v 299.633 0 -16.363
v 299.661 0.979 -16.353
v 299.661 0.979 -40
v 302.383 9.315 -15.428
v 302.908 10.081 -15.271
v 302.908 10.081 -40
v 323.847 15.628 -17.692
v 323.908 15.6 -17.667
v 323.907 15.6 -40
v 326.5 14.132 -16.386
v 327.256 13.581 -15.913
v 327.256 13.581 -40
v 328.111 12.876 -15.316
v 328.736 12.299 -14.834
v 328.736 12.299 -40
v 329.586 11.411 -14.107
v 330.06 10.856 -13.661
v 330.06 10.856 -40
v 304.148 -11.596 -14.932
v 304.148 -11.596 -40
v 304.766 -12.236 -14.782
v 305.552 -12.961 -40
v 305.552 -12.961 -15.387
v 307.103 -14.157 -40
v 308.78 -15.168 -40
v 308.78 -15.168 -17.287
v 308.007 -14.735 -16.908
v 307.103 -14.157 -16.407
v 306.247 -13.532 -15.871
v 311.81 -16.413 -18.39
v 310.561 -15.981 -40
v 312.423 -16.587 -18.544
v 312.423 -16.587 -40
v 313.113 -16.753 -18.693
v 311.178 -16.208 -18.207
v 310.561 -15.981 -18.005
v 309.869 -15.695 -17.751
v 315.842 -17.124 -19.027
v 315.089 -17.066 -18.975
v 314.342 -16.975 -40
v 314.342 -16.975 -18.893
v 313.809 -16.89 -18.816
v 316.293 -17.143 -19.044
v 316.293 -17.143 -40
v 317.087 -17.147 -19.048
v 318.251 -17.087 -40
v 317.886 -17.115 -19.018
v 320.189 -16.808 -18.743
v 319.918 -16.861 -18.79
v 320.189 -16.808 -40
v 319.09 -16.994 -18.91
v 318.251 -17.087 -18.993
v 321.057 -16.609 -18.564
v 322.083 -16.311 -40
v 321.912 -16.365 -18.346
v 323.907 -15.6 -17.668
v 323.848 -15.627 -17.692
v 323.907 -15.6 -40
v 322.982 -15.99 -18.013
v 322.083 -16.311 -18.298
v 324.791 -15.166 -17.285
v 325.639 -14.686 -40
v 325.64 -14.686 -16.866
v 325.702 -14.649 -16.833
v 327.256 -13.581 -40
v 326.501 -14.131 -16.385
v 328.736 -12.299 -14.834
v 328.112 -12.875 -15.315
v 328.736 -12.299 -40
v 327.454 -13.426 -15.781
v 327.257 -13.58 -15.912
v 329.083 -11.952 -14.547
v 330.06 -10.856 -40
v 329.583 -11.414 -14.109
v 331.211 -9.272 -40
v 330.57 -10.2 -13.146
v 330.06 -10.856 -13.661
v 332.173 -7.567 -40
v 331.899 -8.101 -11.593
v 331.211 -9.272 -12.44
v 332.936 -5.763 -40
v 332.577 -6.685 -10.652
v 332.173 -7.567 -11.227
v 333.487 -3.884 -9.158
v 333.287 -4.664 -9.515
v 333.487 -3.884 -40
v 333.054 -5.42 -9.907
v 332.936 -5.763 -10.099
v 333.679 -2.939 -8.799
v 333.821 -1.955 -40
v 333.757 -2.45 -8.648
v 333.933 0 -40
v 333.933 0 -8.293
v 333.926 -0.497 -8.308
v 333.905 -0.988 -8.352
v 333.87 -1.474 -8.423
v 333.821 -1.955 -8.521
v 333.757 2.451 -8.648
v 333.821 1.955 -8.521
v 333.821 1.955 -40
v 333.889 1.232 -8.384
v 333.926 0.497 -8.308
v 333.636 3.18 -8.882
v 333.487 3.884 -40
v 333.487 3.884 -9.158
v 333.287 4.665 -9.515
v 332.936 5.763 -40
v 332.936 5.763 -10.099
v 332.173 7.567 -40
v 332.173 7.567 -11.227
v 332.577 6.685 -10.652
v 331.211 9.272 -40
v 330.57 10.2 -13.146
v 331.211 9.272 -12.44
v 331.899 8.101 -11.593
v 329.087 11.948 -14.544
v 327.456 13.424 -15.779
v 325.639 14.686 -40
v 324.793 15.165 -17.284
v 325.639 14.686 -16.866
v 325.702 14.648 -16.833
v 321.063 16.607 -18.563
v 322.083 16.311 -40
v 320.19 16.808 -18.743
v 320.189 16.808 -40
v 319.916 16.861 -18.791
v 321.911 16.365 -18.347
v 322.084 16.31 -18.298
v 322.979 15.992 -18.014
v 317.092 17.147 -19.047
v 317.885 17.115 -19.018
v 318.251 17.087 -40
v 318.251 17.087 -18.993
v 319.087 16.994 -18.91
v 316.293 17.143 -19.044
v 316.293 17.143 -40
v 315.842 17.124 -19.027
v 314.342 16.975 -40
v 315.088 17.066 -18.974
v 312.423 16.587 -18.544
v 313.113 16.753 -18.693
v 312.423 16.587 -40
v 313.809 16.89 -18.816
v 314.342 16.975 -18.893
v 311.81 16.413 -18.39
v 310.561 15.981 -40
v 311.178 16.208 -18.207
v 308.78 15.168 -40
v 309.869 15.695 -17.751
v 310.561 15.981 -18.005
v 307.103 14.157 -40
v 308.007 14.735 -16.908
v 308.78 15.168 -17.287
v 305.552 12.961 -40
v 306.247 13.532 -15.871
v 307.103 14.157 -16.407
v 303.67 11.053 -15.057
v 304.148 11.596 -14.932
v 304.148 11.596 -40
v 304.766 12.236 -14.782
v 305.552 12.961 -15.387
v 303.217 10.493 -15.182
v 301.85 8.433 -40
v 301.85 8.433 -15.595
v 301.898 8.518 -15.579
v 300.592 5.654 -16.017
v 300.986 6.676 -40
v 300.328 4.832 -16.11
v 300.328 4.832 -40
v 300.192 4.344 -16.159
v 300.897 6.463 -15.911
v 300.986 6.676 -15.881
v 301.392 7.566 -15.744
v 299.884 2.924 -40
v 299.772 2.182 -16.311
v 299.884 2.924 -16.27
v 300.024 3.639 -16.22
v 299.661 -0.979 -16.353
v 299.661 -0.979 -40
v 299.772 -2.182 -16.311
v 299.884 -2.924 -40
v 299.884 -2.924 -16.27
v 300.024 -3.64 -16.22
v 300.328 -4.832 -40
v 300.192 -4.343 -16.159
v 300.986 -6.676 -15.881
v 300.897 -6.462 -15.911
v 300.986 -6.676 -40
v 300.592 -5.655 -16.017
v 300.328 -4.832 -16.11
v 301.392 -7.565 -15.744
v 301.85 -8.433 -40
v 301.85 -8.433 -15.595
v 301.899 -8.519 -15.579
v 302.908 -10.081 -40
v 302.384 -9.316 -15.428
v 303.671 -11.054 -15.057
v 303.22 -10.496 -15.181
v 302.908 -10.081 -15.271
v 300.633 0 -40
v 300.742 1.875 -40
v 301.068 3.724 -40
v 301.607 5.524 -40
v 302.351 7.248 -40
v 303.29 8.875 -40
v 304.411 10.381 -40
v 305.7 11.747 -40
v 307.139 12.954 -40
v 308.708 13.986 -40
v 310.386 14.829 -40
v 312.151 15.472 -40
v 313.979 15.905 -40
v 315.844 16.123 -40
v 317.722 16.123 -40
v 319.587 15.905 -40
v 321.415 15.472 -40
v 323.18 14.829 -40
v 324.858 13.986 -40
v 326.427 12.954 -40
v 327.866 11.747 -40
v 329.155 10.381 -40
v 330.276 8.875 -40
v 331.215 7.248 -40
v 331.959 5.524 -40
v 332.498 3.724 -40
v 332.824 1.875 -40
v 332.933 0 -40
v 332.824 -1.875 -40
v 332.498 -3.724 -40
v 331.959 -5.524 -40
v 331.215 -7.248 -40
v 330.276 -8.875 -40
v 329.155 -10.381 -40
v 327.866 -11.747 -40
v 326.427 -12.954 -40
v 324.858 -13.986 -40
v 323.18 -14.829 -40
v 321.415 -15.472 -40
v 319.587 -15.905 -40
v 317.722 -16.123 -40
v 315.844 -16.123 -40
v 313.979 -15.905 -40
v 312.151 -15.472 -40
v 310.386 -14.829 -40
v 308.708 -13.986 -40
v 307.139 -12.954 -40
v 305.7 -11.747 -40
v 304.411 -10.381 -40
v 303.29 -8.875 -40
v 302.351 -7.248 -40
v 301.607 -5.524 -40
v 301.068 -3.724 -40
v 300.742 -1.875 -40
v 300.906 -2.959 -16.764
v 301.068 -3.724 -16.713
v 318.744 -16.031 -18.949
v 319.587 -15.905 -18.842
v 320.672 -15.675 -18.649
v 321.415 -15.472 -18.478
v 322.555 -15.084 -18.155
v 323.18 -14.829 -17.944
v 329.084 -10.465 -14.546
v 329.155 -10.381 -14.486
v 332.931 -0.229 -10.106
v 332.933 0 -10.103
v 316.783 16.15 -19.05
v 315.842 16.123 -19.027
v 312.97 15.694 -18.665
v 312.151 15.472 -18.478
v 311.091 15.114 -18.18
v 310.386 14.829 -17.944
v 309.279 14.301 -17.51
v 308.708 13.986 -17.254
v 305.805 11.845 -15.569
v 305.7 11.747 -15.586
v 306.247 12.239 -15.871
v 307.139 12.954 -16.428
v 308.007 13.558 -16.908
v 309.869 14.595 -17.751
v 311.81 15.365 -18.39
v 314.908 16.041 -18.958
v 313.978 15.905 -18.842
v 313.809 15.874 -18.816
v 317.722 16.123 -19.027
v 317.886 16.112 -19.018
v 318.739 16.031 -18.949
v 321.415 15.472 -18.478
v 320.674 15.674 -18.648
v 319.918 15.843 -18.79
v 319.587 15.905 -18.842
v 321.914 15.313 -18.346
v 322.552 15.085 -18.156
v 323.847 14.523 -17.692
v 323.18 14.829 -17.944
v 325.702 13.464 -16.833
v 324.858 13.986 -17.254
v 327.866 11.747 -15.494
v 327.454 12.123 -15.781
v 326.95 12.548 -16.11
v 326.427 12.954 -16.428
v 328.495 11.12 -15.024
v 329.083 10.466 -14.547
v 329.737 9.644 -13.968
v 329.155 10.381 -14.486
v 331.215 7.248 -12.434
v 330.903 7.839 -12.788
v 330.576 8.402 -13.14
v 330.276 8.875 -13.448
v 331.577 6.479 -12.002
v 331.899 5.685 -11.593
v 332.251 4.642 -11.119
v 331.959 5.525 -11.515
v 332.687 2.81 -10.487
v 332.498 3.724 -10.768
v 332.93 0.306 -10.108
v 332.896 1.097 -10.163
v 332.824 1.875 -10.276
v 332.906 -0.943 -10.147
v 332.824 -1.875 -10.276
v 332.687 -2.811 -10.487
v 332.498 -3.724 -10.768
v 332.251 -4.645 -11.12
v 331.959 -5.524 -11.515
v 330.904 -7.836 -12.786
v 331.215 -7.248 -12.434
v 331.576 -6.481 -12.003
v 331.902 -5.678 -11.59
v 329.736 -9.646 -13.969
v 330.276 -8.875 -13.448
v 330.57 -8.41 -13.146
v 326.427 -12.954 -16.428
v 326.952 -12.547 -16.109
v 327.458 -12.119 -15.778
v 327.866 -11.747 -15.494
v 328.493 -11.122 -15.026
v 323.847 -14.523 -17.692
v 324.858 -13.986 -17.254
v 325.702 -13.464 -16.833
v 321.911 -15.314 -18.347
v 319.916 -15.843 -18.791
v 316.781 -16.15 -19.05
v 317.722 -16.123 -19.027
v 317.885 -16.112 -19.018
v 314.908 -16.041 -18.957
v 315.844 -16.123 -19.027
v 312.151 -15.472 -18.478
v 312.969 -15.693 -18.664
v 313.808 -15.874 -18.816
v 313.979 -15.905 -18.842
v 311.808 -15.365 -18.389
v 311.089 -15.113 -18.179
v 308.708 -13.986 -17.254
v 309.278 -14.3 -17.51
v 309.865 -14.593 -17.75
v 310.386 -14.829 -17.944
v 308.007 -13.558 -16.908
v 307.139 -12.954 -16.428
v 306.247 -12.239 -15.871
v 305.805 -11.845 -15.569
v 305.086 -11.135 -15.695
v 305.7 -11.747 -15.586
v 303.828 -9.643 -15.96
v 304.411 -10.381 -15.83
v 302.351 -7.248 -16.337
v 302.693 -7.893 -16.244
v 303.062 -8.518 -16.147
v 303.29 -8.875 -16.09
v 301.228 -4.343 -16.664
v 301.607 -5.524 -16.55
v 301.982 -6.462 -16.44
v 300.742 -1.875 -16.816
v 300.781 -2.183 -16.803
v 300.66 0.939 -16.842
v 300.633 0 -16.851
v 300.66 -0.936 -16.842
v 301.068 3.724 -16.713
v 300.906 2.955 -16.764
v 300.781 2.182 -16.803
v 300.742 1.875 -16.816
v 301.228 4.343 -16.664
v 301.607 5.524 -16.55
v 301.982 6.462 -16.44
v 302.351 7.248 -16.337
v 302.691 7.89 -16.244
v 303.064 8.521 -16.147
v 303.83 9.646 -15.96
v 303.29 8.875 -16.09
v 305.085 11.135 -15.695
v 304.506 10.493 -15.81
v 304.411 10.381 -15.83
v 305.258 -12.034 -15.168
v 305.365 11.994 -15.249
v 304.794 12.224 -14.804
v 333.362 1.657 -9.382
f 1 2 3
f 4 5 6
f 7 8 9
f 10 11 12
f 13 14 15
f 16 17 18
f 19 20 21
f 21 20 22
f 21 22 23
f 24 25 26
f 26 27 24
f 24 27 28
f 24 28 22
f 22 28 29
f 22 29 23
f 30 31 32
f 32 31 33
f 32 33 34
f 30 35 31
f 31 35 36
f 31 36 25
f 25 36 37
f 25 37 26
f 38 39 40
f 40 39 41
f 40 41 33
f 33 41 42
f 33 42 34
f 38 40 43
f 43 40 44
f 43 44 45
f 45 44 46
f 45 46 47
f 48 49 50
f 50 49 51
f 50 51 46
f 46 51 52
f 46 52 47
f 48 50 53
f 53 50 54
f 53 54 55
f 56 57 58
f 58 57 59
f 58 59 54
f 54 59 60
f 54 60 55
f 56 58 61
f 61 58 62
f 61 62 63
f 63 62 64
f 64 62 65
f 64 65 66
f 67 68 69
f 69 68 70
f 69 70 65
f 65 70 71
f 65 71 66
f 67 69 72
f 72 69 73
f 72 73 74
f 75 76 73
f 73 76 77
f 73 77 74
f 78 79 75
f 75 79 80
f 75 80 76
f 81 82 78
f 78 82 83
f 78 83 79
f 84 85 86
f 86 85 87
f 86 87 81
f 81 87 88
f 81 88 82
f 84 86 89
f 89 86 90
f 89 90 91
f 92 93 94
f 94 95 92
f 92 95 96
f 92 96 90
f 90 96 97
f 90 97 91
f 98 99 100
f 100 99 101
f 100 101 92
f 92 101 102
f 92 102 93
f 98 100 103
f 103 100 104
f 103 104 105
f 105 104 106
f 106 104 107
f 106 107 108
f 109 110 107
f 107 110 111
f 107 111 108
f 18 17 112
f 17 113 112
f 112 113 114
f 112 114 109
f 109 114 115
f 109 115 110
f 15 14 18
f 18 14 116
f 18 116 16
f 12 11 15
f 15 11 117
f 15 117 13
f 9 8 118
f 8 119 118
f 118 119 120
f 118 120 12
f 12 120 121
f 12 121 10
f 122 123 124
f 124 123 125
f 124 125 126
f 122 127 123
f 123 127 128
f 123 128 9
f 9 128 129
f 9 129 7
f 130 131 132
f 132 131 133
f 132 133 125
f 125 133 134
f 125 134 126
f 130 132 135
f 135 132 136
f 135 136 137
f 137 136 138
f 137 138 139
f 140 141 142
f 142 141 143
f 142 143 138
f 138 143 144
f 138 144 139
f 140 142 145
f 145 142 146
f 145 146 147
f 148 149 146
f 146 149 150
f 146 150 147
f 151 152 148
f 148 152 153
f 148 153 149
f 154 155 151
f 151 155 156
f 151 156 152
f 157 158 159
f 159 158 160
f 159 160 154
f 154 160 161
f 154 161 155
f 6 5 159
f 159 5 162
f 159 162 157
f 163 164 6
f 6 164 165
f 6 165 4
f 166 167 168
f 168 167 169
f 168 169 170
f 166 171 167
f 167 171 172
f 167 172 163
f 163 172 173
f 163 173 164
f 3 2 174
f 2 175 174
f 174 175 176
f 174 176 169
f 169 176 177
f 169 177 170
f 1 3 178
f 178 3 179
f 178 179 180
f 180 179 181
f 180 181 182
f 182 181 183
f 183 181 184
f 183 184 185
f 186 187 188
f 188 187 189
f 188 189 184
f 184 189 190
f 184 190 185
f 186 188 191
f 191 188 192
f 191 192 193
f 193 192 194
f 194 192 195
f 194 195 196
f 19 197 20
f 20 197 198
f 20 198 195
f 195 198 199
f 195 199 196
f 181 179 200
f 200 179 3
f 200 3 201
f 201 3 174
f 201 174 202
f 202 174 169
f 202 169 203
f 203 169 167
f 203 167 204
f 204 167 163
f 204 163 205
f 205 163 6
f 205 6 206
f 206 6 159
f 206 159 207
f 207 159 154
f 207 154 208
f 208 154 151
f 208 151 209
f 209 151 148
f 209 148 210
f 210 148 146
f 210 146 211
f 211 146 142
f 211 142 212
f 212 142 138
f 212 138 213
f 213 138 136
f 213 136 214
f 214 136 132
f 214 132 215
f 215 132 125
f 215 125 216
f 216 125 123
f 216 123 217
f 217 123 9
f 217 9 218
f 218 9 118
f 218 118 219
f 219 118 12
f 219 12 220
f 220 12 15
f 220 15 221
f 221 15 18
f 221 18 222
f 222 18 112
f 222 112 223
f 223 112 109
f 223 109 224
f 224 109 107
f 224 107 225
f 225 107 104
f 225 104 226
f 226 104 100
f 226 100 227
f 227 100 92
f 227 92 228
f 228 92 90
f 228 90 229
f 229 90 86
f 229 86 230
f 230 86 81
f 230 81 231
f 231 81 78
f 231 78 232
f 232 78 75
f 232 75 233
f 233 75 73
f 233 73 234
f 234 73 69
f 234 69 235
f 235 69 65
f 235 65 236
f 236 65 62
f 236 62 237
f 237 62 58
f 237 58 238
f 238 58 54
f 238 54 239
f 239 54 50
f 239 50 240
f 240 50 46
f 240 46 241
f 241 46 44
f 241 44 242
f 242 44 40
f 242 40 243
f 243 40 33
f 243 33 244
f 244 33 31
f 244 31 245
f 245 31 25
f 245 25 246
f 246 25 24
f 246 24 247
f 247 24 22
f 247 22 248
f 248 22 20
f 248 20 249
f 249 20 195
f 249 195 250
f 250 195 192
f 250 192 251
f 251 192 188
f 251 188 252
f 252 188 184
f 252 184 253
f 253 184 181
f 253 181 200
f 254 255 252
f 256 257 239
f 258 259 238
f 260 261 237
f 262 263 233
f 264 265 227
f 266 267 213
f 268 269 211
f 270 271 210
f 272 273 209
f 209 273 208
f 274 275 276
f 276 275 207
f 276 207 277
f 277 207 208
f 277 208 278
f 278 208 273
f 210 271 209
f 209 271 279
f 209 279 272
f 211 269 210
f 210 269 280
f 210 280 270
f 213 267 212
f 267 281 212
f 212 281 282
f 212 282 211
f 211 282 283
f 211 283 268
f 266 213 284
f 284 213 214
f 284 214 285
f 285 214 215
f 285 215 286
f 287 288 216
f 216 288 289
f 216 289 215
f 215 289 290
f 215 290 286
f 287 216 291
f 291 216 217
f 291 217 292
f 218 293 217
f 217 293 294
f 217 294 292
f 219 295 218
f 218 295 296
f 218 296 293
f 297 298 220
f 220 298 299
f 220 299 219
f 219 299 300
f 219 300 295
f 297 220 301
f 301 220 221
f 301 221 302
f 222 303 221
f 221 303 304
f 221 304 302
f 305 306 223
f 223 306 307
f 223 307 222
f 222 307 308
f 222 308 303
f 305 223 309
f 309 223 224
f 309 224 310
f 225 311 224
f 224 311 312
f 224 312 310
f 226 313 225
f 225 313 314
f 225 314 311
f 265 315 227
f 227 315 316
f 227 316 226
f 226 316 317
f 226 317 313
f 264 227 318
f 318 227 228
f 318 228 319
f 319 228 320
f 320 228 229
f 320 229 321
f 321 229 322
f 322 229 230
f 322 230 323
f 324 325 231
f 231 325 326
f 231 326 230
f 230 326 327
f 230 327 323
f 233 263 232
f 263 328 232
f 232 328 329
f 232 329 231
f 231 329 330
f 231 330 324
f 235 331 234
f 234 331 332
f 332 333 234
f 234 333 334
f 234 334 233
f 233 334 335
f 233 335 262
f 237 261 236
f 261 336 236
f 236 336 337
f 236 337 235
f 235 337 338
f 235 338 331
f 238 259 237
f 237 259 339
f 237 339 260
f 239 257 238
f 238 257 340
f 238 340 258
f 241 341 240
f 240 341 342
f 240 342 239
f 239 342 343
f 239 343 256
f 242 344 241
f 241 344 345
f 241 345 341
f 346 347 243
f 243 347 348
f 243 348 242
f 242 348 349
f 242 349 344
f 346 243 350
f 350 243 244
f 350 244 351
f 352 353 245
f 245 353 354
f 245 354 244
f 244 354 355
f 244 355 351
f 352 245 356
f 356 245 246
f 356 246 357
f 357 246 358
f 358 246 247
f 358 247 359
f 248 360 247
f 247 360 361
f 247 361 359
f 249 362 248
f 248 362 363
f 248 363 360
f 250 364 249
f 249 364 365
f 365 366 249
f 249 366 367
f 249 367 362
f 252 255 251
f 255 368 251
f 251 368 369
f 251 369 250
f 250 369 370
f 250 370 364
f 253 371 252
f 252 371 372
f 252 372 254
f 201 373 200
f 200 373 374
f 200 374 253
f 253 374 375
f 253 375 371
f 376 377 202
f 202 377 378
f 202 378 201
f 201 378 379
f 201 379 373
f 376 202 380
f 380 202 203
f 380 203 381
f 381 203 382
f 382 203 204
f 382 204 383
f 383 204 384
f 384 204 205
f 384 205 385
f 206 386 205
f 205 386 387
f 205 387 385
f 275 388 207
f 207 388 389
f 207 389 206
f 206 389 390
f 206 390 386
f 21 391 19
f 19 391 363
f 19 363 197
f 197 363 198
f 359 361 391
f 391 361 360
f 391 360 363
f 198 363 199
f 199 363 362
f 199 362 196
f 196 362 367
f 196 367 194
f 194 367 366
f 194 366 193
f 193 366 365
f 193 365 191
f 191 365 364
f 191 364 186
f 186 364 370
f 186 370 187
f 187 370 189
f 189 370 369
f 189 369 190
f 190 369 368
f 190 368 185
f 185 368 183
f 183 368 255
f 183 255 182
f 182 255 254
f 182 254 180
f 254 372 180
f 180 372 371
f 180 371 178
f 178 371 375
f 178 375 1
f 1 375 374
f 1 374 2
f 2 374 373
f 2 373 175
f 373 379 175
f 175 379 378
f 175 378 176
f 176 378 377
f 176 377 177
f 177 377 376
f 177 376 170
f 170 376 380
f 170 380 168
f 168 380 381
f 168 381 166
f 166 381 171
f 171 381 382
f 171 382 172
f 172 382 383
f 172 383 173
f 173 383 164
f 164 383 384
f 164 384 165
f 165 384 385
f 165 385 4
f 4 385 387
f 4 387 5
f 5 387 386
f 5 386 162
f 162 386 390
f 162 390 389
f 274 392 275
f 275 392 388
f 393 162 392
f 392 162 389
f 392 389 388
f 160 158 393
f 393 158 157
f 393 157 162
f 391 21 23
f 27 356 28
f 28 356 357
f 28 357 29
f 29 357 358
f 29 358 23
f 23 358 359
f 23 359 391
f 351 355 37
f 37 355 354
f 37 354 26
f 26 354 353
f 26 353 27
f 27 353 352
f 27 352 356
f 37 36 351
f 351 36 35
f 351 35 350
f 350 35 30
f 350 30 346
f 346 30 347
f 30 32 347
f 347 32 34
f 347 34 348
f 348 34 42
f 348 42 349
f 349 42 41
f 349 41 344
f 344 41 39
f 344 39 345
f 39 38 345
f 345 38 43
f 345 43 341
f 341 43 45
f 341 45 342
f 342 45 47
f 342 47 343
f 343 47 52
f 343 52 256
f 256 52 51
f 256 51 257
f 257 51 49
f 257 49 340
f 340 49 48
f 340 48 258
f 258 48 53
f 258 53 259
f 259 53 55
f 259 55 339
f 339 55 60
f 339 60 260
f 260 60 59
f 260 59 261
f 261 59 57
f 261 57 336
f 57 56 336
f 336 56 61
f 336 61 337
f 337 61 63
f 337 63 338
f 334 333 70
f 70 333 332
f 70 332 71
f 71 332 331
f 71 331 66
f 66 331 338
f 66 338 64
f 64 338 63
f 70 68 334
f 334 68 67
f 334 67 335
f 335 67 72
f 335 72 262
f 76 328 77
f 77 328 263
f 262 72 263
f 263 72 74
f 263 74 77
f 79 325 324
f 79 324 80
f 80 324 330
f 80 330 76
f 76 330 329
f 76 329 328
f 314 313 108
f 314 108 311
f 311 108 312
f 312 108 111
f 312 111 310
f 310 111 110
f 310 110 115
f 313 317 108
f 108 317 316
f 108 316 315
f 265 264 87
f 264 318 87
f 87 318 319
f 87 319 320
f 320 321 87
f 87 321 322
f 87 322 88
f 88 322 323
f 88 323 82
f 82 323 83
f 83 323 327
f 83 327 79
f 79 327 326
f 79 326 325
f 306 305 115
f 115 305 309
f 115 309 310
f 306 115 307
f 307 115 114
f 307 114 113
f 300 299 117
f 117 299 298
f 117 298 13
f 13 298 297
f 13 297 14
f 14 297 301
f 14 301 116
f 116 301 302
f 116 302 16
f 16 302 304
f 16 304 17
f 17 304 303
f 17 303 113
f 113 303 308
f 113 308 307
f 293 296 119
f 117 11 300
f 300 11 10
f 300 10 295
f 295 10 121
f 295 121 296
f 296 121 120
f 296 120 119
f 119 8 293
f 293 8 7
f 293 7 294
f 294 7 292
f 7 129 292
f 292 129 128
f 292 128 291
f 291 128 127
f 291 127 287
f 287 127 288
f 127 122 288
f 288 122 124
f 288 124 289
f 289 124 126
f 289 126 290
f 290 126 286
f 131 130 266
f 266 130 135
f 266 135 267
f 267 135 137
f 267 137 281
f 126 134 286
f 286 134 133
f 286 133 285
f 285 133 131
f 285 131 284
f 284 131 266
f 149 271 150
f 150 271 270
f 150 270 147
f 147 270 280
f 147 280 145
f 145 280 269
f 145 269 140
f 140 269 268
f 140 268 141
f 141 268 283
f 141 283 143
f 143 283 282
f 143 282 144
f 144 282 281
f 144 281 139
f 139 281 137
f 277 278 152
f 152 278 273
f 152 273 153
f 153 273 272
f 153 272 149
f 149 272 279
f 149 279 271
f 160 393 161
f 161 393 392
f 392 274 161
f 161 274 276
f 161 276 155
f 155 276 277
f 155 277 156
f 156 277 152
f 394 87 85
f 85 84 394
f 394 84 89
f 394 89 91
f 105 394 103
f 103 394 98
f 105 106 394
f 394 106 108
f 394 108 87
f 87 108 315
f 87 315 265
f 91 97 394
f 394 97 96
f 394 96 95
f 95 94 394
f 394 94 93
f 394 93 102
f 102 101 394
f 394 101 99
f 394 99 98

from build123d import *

# Parameters (mm, degrees)
SKETCH1_R           = 17.15
SKETCH1_R_2         = 16.15
BOSS_EXTRUDE1_DEPTH = 40
SKETCH2_R           = 22.225
CUT_EXTRUDE1_DEPTH  = 352.453482
SKETCH3_R           = 19.05
CUT_EXTRUDE2_DEPTH  = 52.6500001


with BuildPart() as part:
    # Sketch1 → Boss-Extrude1 (new body)
    with BuildSketch(Plane.XY):
        with Locations((316.783091477, 0)):
            Circle(SKETCH1_R)
        with Locations((316.783091477, 0)):
            Circle(SKETCH1_R_2, mode=Mode.SUBTRACT)
    extrude(amount=-BOSS_EXTRUDE1_DEPTH)

    # Sketch2 → Cut-Extrude1 (cut)
    with BuildSketch(Plane(origin=(-60.87597301, 0, 29.691195898), x_dir=(-0.438371147, 0, -0.898794046), z_dir=(0.898794046, 0, -0.438371147))):
        with Locations((-138.868567094, 0)):
            Circle(SKETCH2_R)
    extrude(amount=CUT_EXTRUDE1_DEPTH, mode=Mode.SUBTRACT)

    # Sketch3 → Cut-Extrude2 (cut, through all)
    with BuildSketch(Plane.XZ.offset(34.5)):
        with Locations((316.783091477, 0)):
            Circle(SKETCH3_R)
    extrude(amount=-CUT_EXTRUDE2_DEPTH, mode=Mode.SUBTRACT)


solid = part.part
